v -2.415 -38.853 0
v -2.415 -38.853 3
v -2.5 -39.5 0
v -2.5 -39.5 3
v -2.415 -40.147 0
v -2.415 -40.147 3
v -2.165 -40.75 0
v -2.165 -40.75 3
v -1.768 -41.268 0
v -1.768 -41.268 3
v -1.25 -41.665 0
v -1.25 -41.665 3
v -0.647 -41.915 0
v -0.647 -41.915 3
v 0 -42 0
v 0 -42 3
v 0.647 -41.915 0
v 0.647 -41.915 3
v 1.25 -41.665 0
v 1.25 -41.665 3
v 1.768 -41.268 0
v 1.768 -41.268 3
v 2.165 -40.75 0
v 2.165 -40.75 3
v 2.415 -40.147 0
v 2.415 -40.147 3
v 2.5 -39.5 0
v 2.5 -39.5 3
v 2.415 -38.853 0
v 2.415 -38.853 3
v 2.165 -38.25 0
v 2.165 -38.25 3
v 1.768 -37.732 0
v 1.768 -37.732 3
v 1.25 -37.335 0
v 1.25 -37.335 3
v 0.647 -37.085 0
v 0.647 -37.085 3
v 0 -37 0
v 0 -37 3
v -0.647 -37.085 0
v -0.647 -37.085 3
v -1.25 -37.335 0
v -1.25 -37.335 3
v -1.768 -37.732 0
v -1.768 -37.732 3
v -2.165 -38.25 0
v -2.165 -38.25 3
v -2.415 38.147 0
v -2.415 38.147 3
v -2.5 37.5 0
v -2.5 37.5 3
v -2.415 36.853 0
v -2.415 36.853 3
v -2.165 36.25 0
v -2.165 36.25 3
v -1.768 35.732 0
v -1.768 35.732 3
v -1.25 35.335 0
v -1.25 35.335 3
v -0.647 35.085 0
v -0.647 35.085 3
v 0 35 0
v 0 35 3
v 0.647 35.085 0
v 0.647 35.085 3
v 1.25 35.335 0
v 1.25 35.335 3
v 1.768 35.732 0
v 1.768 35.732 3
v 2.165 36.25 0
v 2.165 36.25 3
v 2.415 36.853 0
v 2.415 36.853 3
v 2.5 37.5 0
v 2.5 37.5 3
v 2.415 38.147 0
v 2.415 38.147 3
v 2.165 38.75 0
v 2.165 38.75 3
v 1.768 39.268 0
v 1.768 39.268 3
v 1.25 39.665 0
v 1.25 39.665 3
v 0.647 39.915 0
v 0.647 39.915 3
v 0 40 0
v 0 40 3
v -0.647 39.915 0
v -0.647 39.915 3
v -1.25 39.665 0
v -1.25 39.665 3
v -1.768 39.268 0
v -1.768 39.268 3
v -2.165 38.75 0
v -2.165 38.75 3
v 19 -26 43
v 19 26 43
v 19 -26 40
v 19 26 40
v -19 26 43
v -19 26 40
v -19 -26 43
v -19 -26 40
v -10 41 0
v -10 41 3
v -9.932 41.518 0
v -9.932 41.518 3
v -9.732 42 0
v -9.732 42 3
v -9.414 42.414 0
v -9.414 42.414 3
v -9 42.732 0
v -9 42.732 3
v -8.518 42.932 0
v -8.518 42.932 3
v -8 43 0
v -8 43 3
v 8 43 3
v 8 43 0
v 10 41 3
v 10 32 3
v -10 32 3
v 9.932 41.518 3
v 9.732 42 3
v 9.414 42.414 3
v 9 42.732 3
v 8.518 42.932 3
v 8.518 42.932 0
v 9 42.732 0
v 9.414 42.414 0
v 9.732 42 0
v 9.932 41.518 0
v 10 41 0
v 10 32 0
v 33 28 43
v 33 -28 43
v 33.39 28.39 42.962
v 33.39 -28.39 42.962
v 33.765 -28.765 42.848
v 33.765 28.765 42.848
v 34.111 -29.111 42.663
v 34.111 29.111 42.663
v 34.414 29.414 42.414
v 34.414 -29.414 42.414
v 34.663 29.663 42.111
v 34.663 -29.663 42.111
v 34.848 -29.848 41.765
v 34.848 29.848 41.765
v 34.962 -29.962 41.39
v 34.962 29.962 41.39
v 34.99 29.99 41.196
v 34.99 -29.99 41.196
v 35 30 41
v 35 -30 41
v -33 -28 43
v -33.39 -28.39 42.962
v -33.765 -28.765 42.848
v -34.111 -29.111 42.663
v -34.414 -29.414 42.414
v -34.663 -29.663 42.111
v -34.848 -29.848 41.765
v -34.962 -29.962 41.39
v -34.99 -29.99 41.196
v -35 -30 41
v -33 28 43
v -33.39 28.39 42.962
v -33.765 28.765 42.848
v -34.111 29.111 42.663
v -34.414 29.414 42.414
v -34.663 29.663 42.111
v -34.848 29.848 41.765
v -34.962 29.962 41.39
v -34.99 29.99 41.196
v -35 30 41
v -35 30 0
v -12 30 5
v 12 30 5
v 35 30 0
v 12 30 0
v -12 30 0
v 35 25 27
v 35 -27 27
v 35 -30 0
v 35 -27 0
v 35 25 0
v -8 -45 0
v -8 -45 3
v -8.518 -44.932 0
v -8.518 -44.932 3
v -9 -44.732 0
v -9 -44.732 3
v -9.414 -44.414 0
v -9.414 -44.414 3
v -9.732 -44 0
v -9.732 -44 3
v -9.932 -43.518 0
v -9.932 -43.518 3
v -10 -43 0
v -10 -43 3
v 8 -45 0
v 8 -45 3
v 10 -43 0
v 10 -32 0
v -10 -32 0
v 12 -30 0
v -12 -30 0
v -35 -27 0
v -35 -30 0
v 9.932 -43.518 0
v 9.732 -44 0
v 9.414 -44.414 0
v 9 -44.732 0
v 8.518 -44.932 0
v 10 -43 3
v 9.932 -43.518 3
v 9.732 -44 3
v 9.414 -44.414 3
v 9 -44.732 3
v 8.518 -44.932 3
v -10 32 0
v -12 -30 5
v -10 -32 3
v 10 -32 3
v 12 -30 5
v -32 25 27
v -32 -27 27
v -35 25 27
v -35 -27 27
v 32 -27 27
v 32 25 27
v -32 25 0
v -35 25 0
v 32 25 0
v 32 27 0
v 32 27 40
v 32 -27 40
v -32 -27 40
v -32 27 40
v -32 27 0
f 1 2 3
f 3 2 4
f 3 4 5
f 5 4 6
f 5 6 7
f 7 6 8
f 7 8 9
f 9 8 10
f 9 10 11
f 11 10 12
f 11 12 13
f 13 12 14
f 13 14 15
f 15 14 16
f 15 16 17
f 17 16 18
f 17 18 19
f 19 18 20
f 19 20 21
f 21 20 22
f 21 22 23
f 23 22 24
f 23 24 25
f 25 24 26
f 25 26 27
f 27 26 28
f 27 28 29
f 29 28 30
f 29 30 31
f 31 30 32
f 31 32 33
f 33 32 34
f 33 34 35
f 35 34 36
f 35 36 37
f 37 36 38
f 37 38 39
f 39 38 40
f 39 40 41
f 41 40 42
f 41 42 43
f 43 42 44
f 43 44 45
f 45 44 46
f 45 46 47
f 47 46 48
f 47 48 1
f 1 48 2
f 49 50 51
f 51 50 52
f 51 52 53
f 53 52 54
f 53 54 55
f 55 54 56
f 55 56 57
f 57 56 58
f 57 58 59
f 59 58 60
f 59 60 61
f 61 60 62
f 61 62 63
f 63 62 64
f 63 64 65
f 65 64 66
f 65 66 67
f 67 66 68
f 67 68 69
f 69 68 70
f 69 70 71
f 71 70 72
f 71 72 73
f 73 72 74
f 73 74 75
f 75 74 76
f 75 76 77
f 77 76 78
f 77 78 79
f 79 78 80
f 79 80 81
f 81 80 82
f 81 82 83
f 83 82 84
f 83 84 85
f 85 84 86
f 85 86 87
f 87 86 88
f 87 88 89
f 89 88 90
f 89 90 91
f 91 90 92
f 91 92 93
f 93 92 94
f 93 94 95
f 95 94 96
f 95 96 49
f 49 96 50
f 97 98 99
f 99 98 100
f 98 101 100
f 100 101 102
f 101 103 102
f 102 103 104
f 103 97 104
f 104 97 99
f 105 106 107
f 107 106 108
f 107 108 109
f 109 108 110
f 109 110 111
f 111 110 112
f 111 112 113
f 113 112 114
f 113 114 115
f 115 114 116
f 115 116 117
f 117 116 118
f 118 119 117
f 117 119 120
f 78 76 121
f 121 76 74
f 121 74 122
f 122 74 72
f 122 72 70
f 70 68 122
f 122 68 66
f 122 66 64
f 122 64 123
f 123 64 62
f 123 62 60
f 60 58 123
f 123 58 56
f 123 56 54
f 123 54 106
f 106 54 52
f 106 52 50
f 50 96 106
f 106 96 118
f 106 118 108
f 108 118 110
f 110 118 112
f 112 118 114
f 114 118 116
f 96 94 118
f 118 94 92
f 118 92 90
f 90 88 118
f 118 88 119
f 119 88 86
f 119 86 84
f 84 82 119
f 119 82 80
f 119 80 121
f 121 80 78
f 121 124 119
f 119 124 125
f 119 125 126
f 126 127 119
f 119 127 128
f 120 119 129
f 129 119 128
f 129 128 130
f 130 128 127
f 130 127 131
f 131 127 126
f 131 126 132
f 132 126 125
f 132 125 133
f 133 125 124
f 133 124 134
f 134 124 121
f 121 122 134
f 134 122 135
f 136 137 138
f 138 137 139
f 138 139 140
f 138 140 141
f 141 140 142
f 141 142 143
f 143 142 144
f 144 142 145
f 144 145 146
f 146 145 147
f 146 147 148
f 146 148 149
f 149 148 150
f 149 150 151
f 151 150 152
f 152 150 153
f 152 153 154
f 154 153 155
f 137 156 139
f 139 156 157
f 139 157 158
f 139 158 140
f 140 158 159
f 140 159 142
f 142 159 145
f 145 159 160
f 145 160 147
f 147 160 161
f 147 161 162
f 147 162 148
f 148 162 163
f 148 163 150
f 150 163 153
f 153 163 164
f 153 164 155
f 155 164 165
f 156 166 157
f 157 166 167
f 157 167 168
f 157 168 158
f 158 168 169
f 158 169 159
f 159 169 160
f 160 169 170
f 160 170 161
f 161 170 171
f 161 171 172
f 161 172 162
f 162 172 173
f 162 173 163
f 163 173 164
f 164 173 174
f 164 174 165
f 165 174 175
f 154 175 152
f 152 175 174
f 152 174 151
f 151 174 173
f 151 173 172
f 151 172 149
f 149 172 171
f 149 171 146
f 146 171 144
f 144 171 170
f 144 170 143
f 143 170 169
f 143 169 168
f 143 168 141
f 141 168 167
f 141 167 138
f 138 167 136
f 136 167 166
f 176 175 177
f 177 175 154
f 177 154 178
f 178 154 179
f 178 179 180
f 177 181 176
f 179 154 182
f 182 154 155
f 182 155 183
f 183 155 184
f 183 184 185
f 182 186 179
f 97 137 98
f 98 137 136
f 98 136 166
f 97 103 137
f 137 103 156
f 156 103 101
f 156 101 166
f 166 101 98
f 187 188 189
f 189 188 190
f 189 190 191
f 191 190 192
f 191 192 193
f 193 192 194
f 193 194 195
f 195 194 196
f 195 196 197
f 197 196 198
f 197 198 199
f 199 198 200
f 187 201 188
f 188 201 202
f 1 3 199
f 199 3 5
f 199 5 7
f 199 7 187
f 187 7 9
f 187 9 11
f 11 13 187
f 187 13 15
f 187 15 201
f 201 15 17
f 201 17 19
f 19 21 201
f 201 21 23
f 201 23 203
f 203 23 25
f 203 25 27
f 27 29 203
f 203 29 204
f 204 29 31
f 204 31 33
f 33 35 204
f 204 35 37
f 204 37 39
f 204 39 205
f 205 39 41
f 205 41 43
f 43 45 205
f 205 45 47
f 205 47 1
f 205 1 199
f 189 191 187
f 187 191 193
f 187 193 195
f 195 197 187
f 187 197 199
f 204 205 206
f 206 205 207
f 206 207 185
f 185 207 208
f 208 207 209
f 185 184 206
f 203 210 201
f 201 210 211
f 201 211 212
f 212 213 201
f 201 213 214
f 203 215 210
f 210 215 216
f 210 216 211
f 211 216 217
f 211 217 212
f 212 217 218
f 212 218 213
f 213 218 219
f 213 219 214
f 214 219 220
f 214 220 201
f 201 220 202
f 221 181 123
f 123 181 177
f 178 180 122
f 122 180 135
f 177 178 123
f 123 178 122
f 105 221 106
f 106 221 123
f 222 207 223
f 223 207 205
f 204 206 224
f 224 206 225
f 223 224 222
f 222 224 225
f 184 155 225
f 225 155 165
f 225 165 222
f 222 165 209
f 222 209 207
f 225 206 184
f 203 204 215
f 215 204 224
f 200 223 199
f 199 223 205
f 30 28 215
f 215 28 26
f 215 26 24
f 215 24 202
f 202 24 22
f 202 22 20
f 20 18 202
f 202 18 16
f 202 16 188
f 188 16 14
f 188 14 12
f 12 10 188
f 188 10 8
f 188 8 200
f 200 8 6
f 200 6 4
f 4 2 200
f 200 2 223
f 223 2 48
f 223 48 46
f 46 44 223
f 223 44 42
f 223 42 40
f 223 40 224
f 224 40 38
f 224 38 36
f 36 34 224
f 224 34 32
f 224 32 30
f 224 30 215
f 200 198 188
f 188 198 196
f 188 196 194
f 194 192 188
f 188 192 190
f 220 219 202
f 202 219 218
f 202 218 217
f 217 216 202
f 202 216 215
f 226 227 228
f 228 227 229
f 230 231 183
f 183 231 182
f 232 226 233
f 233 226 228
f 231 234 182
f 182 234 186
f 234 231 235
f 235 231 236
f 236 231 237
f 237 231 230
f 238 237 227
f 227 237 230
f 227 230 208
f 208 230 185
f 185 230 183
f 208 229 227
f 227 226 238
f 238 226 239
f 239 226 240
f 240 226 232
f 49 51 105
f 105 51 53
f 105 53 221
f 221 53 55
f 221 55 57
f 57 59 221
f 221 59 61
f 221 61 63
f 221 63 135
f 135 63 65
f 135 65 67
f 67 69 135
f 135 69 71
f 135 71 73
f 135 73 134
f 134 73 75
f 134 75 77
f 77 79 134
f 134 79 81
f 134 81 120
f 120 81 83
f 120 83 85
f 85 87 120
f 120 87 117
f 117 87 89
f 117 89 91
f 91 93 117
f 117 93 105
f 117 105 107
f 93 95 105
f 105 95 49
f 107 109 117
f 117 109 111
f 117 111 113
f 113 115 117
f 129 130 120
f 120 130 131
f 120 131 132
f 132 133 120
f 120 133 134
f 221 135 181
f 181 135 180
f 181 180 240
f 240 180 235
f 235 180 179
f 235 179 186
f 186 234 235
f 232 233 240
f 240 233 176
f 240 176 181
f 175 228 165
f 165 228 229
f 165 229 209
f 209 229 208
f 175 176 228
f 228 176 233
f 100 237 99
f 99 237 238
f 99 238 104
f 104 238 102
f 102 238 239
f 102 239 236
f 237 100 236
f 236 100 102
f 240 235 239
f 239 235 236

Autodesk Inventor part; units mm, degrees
ref_plane "YZ Plane" through (0, 0, 0) normal (1, 0, 0) x (0, 1, 0)
ref_plane "XZ Plane" through (0, 0, 0) normal (0, 1, 0) x (-1, 0, 0)
ref_plane "XY Plane" through (0, 0, 0) normal (0, 0, 1) x (1, 0, 0)
sketch "Sketch1" plane through (0, 0, 0) normal (0, 0, 1) x (1, 0, 0)
  line L0 (-32, 27) -> (32, 27)
  line L1 (32, 27) -> (32, -27)
  line L2 (32, -27) -> (-32, -27)
  line L3 (-32, -27) -> (-32, 27)
  line L4 (-32, 27) -> (32, -27) construction
  line L5 (32, 27) -> (-32, -27) construction
  line L6 (35, 30) -> (-35, 30)
  line L7 (-35, 30) -> (-35, -30)
  line L8 (-35, -30) -> (35, -30)
  line L9 (35, -30) -> (35, 30)
  point P0 (0, 0)
  dimension "d0" = 64
  dimension "d1" = 54
  dimension "d2" = 3
extrude "Extrusion1" add sketch "Sketch1" along normal blind 40
sketch "Sketch2" plane through (0, 0, 40) normal (0, 0, 1) x (1, 0, 0)
  line L0 (35, 30) -> (-35, 30) projected
  line L1 (35, -30) -> (35, 30) projected
  line L2 (-35, 30) -> (35, 30)
  line L3 (35, 30) -> (35, -30)
  line L4 (35, -30) -> (-35, -30)
  line L5 (-35, -30) -> (-35, 30)
  point P0 (0, 0)
extrude "Extrusion2" add sketch "Sketch2" along normal blind 3
sketch "Sketch3" plane through (35, -30, 0) normal (1, 0, 0) x (0, 0, -1)
  line L0 (0, 3) -> (-27, 3)
  line L1 (-27, 3) -> (-27, 55)
  line L2 (-27, 55) -> (0, 55)
  line L3 (0, 55) -> (0, 3)
  line L4 (0, 3) -> (-27, 55) construction
  line L5 (-27, 3) -> (0, 55) construction
  line L6 (0, 0) -> (0, 60) projected
  point P0 (0, 30)
  point P1 (-13.5, 29)
  dimension "d7" = 27
  dimension "d8" = 52
  dimension "d9" = 13.5
extrude "Extrusion3" cut sketch "Sketch3" against normal through all
sketch "Sketch4" plane through (-35, -30, 0) normal (0, -1, 0) x (1, 0, 0)
  point P0 (35, 0)
sketch "Sketch5" plane through (0, 0, 0) normal (0, 0, -1) x (-1, 0, 0)
  line L0 (10, -30) -> (-10, -30)
  line L1 (-10, -30) -> (-10, -45)
  line L2 (-10, -45) -> (10, -45)
  line L3 (10, -45) -> (10, -30)
  line L4 (10, -30) -> (-10, -45) construction
  line L5 (-10, -30) -> (10, -45) construction
  line L6 (35, -27) -> (-35, -27) projected
  point P0 (0, 0)
  point P1 (0, -37.5)
  dimension "d12" = 20
  dimension "d13" = 15
  dimension "d14" = 10.5
extrude "Extrusion4" add sketch "Sketch5" against normal blind 3
ref_plane "Work Plane1" through (-35, -1, 43) normal (0, -1, 0) x (1, 0, 0)
mirror "Mirror1" about plane through (-35, -1, 43) normal (0, -1, 0) of "Extrusion4"
chamfer "Chamfer1" distance 2 angle 45 6 edges at (10, -30, 1.5) (0, -30, 3) (-10, -30, 1.5) (10, 30, 1.5) (0, 30, 3) (-10, 30, 1.5)
fillet "Fillet1" radius 2 8 edges at (10, -45, 1.5) (-10, -45, 1.5) (-35, 0, 43) (0, -30, 43) (35, 0, 43) (0, 30, 43) (10, 43, 1.5) (-10, 43, 1.5)
sketch "Sketch7" plane through (0, 0, 43) normal (0, 0, 1) x (1, 0, 0)
  line L0 (-19, -26) -> (19, -26)
  line L1 (19, -26) -> (19, 26)
  line L2 (19, 26) -> (-19, 26)
  line L3 (-19, 26) -> (-19, -26)
  line L4 (-19, -26) -> (19, 26) construction
  line L5 (19, -26) -> (-19, 26) construction
  point P0 (0, 0)
  dimension "d25" = 38
  dimension "d26" = 52
extrude "Extrusion6" cut sketch "Sketch7" against normal blind 3
sketch "Sketch8" plane through (-10, 32, 3) normal (0, 0, 1) x (1, 0, 0)
  line L0 (2, 11) -> (18, 11) projected
  line L1 (20, 9) -> (20, 0) projected
  point P0 (10, -32)
  point P1 (10, 5.5)
  dimension "d29" = 5.5
  dimension "d30" = 10
hole "Hole1" at (0, 37.5, 3) direction (0, 0, -1) diameter 5 end through all
mirror "Mirror2" about plane through (-35, -1, 43) normal (0, -1, 0) of "Hole1"
equation "\"d9\" = 0.5 * d7"
properties part number "Eletronica - ProtecaoRele"
